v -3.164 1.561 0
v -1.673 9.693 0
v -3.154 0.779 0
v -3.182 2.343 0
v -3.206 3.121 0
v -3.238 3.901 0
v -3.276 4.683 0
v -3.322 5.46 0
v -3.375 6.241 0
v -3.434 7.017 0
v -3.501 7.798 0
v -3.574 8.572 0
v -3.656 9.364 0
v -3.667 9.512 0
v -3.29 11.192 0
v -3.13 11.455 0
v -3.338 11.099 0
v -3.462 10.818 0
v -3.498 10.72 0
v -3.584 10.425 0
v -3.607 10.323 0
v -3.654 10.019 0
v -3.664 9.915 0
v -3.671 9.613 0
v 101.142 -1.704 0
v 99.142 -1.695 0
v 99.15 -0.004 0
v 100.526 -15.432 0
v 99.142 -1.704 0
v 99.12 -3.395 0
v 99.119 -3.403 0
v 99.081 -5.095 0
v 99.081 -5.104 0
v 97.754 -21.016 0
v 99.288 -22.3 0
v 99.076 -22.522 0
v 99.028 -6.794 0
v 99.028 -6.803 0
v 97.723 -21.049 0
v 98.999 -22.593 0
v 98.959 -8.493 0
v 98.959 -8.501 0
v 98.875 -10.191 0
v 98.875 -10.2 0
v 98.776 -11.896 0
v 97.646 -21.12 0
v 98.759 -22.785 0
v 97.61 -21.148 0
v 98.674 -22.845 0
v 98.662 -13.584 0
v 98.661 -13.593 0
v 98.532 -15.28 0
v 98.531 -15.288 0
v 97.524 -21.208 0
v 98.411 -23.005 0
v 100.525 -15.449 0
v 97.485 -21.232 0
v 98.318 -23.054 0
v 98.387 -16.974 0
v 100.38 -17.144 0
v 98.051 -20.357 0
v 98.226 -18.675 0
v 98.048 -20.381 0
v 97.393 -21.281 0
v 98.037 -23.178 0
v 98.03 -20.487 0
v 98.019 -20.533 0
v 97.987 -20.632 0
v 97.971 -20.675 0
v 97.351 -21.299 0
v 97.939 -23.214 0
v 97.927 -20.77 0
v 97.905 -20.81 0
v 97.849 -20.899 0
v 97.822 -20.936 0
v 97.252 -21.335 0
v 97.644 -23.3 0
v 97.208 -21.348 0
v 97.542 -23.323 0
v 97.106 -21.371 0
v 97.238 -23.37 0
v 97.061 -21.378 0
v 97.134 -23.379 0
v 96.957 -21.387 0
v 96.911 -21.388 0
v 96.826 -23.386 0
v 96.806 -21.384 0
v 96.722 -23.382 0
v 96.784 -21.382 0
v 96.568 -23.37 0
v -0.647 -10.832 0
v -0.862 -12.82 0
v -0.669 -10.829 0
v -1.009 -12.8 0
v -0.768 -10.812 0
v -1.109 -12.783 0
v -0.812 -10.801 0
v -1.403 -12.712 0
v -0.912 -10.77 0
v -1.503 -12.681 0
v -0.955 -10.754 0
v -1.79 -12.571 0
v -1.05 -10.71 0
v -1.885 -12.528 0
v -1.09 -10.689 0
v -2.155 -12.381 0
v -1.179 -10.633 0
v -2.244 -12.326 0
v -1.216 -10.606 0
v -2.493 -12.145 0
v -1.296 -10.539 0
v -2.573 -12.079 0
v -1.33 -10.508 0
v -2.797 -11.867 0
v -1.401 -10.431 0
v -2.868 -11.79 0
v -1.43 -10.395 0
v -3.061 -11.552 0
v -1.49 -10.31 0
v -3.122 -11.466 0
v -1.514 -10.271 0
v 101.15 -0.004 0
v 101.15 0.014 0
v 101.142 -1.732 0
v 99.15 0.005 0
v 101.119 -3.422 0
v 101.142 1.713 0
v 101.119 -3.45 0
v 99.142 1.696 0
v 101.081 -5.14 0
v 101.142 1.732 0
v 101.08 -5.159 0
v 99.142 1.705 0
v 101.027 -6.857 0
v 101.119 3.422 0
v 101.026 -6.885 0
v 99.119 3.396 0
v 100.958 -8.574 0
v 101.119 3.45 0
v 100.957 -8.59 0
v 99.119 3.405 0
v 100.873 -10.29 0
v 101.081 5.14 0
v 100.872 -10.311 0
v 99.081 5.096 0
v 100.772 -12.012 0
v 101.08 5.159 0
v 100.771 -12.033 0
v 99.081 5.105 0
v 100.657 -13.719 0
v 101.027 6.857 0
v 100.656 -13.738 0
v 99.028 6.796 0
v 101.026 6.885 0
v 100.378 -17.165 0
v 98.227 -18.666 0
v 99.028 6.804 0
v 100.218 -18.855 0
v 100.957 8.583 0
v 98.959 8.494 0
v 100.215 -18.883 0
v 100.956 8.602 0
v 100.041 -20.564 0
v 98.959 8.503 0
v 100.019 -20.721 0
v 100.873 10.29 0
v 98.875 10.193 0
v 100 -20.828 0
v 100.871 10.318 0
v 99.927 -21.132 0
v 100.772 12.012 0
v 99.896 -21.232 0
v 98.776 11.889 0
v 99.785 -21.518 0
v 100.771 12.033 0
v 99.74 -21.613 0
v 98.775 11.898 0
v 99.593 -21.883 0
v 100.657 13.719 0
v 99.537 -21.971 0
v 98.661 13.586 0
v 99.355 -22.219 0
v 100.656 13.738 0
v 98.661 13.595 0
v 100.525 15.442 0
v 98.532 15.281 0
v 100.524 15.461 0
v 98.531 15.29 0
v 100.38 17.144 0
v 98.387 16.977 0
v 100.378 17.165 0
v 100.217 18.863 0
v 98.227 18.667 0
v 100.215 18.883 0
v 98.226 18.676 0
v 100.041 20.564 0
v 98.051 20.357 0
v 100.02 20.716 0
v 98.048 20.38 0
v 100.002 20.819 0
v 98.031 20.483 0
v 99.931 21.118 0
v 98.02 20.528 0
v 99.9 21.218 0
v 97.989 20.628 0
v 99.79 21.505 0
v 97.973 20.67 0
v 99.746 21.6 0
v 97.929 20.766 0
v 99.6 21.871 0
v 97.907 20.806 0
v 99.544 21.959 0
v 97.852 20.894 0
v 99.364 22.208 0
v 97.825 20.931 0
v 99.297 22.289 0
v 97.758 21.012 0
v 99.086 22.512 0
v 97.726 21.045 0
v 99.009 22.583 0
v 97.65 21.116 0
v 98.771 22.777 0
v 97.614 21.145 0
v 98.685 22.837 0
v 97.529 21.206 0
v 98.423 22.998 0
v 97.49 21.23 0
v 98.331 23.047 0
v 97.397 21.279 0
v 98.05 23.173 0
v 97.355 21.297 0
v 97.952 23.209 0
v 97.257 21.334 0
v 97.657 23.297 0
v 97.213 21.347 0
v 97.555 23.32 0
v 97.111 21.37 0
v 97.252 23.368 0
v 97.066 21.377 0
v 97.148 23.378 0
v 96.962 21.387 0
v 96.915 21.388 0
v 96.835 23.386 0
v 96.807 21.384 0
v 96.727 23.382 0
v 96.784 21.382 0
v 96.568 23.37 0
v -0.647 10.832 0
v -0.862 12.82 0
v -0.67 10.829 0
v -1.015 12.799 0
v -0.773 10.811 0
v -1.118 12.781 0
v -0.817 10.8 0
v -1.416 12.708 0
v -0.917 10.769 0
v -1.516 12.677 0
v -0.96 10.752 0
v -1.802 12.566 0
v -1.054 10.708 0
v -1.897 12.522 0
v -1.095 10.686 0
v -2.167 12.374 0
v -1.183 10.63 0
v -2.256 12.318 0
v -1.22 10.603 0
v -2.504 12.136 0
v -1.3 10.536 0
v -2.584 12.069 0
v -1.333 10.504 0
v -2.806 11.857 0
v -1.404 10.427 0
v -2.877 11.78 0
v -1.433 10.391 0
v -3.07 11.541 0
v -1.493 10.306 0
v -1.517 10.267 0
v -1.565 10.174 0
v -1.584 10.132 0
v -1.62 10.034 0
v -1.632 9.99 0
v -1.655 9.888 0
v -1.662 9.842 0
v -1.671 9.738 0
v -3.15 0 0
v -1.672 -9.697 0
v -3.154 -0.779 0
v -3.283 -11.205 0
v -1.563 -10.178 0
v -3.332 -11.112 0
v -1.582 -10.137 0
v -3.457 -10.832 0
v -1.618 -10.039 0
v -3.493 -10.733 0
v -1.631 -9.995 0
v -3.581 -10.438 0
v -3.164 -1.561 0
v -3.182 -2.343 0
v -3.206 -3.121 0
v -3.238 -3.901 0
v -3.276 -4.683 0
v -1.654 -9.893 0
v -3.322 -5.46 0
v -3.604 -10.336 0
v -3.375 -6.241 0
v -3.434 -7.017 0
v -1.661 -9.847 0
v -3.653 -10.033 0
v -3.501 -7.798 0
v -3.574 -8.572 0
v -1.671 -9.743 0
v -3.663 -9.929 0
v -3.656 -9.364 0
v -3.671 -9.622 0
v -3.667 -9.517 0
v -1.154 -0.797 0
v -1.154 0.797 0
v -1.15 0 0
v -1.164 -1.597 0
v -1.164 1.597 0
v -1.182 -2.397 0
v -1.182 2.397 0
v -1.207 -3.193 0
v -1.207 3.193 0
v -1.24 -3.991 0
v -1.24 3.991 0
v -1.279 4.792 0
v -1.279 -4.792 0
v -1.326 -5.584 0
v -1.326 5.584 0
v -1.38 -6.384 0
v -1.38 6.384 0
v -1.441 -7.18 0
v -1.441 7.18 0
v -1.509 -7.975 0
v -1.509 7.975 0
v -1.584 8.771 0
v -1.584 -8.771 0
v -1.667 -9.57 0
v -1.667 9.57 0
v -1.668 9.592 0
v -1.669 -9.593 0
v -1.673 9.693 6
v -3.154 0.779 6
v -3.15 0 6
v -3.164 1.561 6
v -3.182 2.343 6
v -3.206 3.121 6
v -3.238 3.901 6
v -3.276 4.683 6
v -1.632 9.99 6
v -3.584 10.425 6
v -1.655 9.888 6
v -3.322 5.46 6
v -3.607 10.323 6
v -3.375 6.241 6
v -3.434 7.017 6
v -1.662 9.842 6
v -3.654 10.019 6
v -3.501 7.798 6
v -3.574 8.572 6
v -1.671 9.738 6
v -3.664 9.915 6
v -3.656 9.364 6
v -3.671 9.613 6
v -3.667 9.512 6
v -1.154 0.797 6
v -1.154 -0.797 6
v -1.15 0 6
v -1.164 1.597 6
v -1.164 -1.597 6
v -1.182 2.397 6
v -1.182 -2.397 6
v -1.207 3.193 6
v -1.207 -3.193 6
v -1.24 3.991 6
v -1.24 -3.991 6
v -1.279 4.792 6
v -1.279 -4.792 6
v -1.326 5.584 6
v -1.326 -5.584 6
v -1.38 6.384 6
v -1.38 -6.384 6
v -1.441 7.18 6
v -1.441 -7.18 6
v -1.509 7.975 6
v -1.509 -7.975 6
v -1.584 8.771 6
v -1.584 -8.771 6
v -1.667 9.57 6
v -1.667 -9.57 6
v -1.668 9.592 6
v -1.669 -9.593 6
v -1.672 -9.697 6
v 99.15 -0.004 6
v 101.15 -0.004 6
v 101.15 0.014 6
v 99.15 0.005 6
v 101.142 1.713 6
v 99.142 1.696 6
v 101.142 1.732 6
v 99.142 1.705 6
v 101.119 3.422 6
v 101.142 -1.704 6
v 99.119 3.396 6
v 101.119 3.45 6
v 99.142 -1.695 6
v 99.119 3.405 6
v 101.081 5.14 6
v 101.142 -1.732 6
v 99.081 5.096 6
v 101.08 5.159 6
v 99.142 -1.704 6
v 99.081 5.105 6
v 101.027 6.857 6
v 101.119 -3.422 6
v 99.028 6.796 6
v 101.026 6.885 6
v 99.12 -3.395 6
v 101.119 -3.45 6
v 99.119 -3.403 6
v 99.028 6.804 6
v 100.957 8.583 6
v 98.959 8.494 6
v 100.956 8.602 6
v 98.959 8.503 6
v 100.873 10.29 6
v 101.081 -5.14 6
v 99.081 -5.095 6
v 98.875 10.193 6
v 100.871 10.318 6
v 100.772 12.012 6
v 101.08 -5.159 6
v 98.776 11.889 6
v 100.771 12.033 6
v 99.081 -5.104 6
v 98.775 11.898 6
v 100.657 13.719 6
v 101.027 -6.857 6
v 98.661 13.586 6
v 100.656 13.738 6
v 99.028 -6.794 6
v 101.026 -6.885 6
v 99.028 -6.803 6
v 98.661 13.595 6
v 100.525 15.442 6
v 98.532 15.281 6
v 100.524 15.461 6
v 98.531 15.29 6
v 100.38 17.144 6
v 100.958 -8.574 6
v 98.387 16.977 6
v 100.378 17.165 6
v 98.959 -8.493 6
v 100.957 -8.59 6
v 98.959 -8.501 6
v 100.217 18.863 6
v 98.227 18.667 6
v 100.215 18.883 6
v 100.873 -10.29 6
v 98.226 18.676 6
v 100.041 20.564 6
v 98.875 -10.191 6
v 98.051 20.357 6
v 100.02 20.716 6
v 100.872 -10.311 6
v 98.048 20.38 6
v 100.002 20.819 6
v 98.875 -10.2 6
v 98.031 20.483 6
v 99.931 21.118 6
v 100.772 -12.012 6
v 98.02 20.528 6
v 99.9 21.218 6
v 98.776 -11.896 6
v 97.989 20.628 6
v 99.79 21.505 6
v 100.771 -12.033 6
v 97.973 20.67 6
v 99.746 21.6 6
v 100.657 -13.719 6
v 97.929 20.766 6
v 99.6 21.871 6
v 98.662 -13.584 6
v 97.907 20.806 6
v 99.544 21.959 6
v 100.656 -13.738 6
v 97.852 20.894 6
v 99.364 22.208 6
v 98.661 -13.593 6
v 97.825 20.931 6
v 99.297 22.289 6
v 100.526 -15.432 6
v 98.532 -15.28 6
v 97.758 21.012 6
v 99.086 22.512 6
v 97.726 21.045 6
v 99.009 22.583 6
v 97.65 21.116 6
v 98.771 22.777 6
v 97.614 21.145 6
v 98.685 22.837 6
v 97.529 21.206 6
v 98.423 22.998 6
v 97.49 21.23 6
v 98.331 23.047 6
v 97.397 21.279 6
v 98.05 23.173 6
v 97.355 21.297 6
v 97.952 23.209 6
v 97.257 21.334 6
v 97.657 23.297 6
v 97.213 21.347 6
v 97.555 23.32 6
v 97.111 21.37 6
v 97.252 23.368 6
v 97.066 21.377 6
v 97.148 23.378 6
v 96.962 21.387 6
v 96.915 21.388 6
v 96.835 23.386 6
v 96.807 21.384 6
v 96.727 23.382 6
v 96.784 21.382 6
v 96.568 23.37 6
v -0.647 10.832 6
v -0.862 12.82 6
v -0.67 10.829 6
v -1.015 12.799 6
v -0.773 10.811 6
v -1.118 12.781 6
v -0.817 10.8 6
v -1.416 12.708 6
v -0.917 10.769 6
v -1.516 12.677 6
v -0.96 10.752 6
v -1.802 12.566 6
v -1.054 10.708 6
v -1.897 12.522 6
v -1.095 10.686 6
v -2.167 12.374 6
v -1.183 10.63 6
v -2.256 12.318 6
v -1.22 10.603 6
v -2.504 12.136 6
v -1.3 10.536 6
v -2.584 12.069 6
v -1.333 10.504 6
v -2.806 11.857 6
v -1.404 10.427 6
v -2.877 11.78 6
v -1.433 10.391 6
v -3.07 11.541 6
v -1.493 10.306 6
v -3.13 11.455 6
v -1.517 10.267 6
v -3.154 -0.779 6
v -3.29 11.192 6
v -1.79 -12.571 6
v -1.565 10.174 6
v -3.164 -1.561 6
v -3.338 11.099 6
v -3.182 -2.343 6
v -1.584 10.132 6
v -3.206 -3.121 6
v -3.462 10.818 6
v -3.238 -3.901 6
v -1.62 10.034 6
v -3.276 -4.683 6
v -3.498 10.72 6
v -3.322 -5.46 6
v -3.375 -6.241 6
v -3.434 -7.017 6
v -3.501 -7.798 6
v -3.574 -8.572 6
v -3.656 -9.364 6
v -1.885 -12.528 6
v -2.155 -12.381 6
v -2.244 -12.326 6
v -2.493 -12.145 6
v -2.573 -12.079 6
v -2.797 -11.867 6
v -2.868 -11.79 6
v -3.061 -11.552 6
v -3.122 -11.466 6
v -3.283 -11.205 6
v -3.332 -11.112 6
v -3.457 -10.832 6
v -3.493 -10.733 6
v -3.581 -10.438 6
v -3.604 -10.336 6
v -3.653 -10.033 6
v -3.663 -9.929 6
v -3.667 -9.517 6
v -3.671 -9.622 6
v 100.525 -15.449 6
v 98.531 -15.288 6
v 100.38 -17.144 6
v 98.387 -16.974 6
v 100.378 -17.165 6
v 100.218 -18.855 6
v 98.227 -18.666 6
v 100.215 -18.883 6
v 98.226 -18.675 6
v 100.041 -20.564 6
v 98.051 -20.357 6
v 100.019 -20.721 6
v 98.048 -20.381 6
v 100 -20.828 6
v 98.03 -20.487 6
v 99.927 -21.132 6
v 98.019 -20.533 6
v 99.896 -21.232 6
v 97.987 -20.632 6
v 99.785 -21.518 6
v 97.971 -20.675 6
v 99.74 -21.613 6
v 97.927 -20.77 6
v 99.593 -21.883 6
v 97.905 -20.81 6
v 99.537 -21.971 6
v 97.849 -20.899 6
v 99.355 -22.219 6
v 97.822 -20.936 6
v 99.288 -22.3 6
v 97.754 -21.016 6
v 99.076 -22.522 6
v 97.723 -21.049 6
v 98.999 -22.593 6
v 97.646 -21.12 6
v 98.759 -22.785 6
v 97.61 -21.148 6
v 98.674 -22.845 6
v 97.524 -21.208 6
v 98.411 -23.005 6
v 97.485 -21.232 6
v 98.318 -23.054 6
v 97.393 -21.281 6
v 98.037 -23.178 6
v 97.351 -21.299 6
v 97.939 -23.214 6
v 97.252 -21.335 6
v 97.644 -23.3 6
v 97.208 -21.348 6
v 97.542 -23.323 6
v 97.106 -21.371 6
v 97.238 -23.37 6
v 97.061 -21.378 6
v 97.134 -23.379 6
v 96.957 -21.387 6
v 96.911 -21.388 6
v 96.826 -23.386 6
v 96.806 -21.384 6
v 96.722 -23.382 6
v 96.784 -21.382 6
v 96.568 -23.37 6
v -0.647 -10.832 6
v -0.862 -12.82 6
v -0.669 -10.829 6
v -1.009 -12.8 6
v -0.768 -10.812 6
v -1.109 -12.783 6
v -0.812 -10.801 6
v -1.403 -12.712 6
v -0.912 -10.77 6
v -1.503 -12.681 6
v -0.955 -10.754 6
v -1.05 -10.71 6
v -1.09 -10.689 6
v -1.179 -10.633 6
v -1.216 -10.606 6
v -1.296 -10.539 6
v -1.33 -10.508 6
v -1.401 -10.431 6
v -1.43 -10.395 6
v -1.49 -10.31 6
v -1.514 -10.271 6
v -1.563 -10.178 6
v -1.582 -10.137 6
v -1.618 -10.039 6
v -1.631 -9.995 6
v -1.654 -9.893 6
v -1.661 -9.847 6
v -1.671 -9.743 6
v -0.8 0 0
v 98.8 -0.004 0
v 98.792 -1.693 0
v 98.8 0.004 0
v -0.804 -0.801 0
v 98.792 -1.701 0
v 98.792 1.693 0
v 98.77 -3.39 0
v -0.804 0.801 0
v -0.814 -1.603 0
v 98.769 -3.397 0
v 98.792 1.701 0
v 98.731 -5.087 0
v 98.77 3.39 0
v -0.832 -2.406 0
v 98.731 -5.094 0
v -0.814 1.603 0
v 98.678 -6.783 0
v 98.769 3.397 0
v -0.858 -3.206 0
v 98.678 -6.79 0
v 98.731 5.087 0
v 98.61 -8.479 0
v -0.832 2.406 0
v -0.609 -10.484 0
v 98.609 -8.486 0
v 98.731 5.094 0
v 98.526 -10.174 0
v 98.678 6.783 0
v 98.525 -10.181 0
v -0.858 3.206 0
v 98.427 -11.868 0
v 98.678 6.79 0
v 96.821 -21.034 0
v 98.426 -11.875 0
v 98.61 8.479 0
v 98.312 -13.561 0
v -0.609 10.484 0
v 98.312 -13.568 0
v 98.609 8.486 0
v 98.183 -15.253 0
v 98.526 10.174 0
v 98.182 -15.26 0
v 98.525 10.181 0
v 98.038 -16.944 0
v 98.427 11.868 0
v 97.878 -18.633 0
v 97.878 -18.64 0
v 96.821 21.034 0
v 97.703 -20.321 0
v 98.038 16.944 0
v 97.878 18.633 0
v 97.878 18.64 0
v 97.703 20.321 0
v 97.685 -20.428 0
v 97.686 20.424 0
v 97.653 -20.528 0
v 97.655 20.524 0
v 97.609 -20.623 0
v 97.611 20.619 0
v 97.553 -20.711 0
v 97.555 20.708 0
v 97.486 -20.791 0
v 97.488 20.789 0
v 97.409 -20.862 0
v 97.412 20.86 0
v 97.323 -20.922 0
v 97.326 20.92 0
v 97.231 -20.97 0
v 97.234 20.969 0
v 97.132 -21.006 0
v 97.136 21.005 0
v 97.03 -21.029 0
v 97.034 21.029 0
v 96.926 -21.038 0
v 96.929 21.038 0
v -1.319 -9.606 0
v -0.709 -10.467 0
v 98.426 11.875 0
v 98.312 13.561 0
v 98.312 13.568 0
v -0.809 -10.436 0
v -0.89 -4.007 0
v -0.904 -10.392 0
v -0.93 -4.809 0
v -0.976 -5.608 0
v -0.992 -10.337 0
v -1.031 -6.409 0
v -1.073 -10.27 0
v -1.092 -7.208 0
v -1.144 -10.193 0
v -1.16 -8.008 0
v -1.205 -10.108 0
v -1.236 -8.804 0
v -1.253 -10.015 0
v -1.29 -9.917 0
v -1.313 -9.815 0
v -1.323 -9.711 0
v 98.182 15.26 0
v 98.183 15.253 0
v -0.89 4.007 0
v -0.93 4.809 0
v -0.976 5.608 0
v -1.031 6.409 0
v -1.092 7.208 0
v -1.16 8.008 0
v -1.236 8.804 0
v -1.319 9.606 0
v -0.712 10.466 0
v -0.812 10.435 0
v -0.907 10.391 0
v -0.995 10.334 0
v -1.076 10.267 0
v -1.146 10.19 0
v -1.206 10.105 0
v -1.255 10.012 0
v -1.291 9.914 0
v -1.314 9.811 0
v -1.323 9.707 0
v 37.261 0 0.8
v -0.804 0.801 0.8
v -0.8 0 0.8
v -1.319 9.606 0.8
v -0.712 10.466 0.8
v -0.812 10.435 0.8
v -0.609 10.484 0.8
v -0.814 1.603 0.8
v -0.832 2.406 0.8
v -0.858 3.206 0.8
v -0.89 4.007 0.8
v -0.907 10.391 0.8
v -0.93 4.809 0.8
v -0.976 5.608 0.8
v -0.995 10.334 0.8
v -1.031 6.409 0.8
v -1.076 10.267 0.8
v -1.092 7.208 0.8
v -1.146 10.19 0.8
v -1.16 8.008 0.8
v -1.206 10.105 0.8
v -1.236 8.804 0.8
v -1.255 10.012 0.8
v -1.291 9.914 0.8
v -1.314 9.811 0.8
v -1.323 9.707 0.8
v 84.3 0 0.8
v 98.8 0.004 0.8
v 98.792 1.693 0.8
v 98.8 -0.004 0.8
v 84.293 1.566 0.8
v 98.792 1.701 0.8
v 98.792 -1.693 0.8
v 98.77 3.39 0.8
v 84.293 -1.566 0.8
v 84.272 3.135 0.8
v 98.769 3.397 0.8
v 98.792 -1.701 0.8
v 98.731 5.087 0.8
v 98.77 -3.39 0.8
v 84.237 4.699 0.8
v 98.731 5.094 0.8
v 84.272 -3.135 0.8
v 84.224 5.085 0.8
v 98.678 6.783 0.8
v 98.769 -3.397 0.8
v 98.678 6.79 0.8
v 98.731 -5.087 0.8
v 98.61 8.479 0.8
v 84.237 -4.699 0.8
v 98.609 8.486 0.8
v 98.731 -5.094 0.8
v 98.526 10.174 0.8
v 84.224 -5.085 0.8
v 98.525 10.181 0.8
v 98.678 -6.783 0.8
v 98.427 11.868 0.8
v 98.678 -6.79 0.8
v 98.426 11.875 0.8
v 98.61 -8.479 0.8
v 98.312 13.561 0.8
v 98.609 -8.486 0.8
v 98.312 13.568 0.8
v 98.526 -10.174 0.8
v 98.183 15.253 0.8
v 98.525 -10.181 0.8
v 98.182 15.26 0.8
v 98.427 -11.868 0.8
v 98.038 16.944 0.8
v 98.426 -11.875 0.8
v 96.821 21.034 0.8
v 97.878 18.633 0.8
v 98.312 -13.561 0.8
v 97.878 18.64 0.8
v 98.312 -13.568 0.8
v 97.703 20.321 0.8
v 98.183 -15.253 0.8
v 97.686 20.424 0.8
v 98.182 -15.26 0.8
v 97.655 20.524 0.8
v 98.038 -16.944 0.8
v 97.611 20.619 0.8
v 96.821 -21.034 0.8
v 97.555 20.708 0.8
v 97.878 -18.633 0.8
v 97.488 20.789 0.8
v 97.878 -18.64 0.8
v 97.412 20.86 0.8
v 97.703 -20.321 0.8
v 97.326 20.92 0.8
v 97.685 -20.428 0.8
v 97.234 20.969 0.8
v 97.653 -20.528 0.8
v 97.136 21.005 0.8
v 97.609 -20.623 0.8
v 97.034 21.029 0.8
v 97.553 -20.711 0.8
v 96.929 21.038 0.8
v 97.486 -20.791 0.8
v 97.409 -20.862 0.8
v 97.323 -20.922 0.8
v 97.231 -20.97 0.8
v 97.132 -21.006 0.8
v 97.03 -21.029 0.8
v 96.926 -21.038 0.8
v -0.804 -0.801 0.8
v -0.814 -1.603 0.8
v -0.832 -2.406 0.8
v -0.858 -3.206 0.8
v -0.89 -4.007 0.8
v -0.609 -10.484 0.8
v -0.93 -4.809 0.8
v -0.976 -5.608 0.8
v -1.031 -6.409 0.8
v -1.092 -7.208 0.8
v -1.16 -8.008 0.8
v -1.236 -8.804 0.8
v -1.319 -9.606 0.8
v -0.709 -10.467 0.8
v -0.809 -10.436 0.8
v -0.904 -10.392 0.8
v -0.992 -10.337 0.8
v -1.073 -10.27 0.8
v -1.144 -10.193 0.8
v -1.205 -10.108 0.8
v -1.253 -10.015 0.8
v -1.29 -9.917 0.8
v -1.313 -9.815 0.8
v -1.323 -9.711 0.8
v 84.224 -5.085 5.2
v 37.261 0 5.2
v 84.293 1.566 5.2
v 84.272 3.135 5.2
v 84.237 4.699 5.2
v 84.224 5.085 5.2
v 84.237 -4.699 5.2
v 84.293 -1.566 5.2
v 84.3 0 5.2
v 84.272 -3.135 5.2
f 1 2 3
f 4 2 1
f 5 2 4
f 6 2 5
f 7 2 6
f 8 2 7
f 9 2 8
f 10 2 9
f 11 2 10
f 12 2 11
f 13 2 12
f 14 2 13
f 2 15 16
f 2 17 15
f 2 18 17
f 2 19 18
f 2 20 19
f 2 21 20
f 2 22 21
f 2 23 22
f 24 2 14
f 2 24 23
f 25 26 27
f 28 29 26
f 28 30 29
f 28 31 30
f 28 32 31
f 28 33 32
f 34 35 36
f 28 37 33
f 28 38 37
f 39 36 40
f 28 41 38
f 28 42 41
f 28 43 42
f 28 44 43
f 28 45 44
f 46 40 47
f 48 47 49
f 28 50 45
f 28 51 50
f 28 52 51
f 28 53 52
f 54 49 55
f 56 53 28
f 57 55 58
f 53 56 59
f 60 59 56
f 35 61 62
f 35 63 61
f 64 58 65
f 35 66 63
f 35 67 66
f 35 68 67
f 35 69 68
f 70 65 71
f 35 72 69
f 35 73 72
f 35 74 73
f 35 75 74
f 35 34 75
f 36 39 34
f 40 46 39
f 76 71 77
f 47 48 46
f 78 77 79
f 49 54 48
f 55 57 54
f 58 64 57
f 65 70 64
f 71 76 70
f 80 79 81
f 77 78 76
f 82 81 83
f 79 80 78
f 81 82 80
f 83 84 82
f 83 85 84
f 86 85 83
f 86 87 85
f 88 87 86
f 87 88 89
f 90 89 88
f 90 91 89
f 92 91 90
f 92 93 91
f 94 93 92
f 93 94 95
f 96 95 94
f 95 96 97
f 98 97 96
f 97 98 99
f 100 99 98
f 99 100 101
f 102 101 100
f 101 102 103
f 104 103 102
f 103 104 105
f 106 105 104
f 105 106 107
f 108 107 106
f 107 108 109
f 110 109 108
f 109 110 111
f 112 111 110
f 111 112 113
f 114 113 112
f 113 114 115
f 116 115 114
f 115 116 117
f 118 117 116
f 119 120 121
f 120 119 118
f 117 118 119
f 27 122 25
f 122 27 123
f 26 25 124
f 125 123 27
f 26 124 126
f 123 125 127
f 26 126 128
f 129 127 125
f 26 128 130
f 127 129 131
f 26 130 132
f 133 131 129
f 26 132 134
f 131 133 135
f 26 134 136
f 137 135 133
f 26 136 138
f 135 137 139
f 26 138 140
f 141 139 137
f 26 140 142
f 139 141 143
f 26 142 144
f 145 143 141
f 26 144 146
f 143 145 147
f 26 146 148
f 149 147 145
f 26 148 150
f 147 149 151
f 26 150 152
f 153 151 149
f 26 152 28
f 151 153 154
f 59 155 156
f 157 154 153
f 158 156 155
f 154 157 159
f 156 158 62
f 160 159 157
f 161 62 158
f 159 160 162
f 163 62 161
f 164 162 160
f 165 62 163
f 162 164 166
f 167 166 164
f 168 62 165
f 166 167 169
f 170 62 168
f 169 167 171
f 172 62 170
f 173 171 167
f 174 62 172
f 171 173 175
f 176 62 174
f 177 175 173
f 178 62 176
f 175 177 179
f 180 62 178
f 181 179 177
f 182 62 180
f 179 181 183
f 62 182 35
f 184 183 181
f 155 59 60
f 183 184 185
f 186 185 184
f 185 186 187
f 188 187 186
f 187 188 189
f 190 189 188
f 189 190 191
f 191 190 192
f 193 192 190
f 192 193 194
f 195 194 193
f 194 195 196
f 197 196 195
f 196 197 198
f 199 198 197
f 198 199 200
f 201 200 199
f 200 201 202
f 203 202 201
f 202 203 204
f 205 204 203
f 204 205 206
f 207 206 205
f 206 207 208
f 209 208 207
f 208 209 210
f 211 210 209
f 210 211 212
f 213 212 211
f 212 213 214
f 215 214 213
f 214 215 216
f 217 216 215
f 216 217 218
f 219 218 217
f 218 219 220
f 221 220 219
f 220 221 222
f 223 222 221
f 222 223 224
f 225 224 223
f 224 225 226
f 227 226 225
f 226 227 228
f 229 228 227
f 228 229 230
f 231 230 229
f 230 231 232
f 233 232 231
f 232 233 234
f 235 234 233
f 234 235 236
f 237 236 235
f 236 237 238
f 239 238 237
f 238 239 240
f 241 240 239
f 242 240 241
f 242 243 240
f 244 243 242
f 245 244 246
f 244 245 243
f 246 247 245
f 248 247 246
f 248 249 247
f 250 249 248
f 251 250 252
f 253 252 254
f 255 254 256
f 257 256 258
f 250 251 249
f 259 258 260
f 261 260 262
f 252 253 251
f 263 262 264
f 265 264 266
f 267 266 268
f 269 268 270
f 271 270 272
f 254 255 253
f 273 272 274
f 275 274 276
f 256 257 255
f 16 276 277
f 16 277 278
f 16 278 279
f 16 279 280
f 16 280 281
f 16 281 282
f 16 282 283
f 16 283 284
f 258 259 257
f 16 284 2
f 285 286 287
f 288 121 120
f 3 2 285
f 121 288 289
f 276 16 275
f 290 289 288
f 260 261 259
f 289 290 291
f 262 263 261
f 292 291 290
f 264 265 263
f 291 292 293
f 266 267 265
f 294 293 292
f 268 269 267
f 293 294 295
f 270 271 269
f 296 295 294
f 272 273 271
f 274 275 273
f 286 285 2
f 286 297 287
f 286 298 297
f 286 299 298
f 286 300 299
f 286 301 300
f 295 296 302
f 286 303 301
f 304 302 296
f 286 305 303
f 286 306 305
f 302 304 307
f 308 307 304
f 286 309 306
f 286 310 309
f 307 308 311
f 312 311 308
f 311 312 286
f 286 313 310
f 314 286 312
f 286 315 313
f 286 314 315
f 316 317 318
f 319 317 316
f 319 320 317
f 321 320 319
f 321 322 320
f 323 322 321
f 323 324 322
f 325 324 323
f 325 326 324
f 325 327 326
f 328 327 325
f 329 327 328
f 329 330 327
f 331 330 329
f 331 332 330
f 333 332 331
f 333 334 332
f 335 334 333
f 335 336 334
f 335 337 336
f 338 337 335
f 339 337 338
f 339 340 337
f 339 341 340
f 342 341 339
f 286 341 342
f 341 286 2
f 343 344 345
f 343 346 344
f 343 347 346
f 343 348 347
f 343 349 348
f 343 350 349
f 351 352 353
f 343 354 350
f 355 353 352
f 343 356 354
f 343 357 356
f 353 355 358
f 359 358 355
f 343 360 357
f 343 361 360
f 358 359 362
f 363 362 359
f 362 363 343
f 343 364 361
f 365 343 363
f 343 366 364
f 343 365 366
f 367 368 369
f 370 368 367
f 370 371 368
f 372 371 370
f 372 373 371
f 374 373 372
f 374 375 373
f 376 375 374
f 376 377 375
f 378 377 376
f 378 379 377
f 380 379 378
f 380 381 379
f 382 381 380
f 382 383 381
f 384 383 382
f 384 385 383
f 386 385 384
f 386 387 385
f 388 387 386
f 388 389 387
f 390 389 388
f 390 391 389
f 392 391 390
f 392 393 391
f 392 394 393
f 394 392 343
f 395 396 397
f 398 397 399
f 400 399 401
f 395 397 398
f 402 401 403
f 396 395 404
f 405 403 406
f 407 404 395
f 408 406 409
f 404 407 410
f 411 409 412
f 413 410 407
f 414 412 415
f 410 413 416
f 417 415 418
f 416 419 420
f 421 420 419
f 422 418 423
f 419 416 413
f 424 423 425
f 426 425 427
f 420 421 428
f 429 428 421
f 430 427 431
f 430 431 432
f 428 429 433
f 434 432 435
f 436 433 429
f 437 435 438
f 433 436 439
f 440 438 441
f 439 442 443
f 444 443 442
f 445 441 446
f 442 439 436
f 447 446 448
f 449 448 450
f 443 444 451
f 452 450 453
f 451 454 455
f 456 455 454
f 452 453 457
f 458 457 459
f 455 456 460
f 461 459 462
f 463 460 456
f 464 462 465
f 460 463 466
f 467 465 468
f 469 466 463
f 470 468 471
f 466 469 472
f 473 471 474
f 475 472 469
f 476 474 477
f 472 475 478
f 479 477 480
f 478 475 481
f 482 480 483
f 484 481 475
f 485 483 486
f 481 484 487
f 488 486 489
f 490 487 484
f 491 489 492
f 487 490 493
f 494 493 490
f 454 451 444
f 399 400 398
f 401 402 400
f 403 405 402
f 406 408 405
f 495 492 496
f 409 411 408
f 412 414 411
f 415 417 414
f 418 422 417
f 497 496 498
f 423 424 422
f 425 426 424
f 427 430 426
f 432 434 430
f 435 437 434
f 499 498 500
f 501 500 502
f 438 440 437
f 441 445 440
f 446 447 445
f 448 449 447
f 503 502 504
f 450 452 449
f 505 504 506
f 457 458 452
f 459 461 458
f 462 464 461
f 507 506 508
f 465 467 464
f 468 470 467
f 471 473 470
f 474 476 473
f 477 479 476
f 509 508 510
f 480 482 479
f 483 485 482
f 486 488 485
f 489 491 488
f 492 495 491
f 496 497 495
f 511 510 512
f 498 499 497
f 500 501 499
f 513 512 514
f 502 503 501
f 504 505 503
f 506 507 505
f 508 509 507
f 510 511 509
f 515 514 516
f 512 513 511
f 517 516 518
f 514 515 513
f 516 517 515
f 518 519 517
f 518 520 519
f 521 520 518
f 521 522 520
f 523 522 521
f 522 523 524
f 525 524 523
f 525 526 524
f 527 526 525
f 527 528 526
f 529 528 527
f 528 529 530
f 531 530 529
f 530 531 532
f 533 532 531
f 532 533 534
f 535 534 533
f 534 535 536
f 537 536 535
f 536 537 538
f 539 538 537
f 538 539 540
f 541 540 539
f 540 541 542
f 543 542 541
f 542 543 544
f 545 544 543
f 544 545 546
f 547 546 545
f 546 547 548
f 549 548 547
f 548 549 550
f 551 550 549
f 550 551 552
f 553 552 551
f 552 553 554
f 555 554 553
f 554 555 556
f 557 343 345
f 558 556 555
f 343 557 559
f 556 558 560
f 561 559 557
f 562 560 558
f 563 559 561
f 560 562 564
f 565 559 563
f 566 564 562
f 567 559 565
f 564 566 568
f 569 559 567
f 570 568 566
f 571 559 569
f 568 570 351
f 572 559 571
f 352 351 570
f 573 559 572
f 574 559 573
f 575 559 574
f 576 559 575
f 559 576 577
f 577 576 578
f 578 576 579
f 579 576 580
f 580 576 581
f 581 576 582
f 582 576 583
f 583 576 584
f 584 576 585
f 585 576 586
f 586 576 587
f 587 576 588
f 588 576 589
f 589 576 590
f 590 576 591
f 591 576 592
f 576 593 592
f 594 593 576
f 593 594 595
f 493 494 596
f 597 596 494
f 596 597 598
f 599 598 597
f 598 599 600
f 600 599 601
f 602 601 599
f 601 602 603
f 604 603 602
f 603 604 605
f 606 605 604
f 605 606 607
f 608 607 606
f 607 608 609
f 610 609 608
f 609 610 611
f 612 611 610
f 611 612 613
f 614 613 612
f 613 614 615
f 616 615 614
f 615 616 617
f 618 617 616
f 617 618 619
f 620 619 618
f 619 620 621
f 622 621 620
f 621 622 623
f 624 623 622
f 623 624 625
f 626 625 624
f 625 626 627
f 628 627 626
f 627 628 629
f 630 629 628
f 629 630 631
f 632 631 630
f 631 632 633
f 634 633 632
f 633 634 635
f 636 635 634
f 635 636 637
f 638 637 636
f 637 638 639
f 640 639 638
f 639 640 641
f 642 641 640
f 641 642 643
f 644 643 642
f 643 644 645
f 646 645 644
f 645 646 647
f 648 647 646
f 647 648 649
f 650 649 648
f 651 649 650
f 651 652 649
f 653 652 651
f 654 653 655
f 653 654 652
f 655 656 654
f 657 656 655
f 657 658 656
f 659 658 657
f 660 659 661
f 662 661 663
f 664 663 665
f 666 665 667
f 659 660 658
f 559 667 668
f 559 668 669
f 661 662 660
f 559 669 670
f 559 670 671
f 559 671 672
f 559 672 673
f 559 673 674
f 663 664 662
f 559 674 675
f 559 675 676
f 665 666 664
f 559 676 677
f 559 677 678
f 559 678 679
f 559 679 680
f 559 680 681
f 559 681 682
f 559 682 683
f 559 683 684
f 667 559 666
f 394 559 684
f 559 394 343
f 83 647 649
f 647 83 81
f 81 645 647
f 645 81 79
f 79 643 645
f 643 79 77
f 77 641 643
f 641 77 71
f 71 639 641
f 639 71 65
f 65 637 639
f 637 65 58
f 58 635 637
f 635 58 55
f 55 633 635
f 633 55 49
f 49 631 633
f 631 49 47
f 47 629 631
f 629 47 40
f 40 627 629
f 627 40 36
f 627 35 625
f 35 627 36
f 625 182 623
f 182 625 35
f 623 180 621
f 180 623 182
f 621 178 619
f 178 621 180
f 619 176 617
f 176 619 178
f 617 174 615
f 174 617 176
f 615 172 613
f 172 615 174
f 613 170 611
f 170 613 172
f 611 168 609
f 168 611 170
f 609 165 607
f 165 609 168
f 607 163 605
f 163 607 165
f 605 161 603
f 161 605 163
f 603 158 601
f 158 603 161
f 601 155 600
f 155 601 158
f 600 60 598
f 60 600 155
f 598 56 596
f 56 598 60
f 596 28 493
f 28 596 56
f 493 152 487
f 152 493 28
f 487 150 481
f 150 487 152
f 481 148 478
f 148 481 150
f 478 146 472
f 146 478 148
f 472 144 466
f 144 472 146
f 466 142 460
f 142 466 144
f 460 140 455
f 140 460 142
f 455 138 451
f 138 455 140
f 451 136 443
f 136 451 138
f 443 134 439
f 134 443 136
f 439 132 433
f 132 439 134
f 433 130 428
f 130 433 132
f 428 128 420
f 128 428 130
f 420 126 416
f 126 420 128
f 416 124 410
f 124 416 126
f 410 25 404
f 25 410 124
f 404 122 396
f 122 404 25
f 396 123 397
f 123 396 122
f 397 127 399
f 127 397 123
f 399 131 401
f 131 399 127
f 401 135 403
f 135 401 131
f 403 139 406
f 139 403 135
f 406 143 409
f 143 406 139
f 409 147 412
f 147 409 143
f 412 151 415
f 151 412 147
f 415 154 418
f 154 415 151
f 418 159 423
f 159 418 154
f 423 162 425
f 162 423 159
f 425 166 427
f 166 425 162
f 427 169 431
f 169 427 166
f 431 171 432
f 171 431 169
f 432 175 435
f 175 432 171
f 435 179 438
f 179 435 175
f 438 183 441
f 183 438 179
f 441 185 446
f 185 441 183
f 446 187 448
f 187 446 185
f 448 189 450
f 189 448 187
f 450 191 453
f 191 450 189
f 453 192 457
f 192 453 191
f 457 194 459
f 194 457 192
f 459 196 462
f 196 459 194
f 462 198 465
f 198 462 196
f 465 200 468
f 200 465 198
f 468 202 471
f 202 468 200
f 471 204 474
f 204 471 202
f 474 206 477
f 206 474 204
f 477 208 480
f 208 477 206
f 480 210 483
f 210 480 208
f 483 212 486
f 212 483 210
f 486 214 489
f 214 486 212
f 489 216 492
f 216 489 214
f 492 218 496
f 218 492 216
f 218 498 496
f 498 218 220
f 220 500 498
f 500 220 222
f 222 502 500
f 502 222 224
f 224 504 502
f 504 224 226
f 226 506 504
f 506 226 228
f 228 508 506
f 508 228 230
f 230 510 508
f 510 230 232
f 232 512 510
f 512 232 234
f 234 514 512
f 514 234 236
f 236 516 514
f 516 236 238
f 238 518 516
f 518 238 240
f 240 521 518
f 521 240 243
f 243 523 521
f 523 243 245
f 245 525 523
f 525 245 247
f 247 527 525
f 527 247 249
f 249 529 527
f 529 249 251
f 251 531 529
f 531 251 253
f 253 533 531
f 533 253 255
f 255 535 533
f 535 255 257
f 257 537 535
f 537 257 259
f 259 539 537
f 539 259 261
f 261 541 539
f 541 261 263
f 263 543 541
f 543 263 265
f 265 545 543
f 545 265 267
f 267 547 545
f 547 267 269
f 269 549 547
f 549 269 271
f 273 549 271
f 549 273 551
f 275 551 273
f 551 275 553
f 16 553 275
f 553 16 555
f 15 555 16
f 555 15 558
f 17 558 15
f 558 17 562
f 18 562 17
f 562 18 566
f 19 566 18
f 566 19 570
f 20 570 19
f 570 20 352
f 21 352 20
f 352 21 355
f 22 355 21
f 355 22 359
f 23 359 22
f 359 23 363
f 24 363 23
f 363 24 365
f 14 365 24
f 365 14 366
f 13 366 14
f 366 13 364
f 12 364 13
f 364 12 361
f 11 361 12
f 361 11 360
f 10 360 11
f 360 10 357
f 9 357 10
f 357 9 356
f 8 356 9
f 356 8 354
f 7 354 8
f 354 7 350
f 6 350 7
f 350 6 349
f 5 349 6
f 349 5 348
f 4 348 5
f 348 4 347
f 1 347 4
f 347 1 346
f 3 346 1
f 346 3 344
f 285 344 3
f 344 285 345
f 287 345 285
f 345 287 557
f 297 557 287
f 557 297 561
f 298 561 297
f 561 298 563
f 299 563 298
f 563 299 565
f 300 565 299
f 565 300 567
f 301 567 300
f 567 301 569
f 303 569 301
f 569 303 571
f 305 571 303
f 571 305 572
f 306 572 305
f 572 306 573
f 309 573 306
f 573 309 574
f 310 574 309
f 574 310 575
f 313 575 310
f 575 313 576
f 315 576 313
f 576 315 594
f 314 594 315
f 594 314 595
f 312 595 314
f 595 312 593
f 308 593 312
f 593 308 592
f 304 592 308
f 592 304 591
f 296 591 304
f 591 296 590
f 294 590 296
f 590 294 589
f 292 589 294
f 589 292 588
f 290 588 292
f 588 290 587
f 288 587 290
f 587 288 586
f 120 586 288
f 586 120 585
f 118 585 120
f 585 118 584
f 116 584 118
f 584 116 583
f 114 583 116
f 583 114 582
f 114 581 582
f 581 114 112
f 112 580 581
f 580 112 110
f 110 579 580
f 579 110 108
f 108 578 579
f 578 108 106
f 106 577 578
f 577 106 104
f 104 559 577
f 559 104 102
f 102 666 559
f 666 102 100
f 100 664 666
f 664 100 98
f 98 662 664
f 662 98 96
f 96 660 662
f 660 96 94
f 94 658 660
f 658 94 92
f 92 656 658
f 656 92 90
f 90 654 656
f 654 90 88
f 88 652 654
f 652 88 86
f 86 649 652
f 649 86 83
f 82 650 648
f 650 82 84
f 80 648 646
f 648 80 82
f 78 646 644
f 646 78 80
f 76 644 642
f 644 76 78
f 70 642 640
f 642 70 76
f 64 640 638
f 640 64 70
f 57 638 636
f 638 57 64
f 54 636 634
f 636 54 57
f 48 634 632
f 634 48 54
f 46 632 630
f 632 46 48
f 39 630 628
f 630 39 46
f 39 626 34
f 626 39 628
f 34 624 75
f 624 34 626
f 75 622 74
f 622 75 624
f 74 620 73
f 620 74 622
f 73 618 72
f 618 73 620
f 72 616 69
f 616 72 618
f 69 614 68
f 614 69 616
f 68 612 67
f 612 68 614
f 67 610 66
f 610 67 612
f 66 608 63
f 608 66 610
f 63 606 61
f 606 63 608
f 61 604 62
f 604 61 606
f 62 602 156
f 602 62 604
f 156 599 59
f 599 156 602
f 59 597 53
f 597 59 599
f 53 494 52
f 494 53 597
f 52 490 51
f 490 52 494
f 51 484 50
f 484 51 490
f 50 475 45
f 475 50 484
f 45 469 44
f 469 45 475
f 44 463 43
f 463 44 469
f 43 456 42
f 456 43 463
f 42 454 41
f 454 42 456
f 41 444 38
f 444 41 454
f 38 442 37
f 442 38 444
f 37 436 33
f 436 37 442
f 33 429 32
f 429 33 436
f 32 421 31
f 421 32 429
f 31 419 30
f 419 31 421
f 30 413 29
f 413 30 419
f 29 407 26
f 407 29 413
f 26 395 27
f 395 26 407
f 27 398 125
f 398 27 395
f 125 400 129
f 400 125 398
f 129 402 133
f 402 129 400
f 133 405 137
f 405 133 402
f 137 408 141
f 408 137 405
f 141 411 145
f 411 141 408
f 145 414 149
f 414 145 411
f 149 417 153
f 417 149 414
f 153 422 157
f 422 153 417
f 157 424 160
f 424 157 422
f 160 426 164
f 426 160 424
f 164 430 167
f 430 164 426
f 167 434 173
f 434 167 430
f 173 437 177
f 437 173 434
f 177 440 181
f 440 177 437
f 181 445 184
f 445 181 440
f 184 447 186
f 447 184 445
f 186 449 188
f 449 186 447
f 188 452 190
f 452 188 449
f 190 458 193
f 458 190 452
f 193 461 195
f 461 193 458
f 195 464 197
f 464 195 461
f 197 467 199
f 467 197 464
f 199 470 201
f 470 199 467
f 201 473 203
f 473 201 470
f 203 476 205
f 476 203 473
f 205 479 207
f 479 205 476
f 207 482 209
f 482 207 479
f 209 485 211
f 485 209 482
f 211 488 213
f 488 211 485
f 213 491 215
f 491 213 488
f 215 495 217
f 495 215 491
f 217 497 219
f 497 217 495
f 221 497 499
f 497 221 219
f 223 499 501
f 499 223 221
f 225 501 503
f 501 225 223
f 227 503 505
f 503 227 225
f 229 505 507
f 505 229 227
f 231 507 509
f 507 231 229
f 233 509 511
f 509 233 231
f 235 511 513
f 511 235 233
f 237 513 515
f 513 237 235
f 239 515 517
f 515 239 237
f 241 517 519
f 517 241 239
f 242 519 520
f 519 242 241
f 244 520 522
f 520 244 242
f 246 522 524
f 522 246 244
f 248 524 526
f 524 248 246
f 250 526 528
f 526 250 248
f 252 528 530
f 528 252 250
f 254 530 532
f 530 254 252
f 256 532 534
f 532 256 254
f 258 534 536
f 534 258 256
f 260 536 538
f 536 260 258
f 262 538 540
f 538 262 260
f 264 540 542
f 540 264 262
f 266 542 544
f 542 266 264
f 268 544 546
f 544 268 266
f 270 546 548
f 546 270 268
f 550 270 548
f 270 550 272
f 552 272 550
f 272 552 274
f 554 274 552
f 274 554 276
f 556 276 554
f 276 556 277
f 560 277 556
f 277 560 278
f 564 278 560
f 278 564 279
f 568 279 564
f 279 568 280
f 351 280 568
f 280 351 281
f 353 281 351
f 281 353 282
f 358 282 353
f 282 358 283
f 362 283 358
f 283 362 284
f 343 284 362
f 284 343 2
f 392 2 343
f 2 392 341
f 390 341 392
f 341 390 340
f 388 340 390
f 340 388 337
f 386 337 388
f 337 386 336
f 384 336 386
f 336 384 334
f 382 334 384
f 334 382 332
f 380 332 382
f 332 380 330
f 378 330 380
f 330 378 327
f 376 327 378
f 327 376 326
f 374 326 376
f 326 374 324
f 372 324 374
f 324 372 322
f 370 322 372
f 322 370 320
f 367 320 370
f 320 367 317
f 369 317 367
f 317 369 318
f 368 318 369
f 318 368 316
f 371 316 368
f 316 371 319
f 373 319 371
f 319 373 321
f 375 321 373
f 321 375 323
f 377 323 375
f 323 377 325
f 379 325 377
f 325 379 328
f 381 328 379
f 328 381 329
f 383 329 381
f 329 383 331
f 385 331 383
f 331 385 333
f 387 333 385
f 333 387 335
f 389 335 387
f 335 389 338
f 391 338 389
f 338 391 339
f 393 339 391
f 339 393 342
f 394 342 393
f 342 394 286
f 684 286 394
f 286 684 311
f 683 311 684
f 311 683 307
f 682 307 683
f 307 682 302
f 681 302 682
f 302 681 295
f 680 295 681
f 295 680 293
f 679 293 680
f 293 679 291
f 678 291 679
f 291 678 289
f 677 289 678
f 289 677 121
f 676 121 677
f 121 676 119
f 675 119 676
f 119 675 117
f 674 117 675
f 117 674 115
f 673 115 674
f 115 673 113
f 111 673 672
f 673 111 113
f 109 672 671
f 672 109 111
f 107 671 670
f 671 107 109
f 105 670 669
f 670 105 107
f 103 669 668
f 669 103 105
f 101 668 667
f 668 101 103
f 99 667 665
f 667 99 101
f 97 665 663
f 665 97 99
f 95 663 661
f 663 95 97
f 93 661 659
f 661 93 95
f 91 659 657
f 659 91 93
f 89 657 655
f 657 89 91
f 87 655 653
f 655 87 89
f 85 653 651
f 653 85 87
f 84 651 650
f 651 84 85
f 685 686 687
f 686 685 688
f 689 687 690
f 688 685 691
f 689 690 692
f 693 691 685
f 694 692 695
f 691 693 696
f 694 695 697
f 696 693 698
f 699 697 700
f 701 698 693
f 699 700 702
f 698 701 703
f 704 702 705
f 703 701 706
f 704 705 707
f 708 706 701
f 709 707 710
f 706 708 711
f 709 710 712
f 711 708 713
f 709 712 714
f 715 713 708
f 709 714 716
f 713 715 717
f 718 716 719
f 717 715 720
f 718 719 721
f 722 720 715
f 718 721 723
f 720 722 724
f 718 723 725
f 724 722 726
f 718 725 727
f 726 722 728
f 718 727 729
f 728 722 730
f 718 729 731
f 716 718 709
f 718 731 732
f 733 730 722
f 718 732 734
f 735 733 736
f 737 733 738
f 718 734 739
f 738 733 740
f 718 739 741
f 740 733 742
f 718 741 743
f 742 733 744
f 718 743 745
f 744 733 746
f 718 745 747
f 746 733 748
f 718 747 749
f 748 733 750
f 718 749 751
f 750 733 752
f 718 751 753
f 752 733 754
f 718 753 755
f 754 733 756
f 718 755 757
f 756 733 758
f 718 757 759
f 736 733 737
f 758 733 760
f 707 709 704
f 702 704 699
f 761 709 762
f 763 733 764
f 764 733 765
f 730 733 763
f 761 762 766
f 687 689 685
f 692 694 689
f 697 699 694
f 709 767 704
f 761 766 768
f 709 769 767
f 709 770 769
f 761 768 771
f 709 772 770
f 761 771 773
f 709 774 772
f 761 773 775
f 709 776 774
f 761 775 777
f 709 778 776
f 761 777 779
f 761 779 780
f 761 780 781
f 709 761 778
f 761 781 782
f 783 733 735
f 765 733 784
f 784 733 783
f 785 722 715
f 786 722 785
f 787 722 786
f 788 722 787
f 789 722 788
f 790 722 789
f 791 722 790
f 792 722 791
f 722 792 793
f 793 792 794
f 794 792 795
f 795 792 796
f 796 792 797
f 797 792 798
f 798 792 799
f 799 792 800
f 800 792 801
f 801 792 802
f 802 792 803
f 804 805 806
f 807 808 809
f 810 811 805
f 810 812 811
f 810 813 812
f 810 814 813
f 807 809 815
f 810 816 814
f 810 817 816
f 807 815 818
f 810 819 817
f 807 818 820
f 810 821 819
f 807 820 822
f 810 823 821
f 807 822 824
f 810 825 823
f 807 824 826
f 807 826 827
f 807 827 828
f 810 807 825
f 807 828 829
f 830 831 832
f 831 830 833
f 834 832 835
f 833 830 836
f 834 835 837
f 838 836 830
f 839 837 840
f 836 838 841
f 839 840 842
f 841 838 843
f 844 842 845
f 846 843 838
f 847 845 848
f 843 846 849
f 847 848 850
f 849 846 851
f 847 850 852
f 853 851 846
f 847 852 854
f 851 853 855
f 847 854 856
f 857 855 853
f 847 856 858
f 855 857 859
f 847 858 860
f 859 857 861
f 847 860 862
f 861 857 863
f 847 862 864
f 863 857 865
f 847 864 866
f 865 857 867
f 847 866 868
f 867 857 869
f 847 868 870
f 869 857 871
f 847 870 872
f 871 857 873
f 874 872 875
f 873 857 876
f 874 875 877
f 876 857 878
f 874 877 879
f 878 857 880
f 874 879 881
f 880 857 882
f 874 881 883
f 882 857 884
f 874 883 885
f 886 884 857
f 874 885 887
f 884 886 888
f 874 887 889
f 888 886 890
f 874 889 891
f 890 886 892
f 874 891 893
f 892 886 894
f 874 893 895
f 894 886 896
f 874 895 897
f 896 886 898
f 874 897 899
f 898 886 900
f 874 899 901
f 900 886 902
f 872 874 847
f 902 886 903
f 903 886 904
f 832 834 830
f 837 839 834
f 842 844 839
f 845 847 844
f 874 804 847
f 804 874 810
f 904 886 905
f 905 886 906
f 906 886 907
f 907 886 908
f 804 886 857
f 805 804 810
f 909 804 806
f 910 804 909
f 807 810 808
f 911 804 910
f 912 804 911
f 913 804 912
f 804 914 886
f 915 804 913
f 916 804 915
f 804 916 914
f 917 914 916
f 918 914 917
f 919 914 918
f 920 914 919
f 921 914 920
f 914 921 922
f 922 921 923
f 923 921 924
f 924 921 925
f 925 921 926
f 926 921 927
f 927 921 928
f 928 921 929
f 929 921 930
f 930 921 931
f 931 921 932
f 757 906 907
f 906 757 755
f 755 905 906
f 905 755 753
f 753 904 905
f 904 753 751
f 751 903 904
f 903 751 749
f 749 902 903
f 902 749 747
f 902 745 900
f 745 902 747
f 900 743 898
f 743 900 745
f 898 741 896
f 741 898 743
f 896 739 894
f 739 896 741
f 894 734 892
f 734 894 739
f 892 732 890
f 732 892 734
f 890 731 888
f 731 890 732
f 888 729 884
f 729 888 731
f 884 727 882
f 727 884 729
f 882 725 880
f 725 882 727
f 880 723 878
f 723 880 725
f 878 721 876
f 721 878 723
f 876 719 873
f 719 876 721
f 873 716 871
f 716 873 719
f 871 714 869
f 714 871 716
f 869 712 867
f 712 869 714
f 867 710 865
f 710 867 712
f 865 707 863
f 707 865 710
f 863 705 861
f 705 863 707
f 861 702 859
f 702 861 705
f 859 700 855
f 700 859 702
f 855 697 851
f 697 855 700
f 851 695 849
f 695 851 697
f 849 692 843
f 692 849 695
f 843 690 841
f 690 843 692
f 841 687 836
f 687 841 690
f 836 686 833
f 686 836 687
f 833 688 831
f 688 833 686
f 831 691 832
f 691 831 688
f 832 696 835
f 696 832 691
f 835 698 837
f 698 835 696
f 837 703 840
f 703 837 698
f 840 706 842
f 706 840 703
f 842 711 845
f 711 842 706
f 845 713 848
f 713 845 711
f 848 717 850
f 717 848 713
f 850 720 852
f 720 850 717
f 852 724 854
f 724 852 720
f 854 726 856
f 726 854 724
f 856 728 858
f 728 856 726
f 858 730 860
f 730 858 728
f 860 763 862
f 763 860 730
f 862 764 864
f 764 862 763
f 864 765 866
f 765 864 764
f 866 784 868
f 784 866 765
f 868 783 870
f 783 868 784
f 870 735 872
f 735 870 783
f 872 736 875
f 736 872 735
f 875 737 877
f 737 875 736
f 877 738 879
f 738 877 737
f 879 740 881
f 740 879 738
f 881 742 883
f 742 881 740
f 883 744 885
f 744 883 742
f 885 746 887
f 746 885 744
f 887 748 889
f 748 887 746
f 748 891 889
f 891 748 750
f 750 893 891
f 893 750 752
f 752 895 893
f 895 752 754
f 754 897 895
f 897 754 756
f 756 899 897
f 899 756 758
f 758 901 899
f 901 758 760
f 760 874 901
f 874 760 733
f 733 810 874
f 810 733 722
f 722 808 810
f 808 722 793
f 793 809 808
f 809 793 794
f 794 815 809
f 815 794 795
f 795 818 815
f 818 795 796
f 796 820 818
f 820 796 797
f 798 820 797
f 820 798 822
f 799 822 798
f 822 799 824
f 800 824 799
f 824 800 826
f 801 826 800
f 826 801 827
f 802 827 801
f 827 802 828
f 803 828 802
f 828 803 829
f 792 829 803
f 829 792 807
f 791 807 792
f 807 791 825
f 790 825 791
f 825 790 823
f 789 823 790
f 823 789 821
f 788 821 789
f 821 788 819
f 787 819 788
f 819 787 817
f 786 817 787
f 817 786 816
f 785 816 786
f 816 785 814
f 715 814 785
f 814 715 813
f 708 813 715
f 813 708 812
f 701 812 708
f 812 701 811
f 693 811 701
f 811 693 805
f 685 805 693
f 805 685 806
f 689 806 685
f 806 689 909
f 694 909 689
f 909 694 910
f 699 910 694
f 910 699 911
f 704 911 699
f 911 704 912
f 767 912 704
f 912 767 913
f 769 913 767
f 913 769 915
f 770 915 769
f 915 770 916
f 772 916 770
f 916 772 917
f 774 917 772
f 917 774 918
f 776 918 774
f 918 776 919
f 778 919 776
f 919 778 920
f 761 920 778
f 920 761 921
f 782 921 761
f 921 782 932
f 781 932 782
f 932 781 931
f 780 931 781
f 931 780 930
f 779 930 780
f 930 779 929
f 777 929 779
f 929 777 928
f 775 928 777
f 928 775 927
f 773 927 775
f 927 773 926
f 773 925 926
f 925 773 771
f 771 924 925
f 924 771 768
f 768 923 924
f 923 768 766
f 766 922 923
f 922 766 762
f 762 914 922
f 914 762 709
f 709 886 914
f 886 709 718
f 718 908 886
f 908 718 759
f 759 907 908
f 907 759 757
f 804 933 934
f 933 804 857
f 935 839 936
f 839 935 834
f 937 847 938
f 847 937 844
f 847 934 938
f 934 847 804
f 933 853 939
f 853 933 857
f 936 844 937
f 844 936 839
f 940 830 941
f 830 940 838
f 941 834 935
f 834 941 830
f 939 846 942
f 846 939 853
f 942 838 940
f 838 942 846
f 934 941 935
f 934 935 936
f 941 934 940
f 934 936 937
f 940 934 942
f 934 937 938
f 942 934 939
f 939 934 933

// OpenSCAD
// Gen-DT — fit coupon (bay part): O20/O5 THROUGH pockets at carrier thickness (test on a steel offcut), 608 seat,
// D-flat bore, gap shim, and one bobbin-bay slice (bobbin footprint + bay_clear) to test former fit.
include <parameters.scad>;
$fn = 48;
// D-flat keyed bore: flat faces +X (angle 0 = magnet pocket 0 = index notch)
module dflat_bore(h) {
    intersection() {
        cylinder(d=shaft_bore, h=h);
        translate([-shaft_bore, -shaft_bore, 0]) cube([shaft_bore + dflat_x, 2*shaft_bore, h]);
    }
}
module sector_2d(r_in, r_out, ang) {
    polygon([
        for (a = [-ang/2 : ang/24 : ang/2]) [r_in*cos(a), r_in*sin(a)],
        for (a = [ang/2 : -ang/24 : -ang/2]) [r_out*cos(a), r_out*sin(a)]
    ]);
}
module footprint_2d() { offset(r=wall) sector_2d(coil_id_r, coil_od_r, span_deg); }
module hub_2d()       { offset(delta=-coil_core_inset) sector_2d(coil_id_r, coil_od_r, span_deg); }

// bay slice at FULL stator thickness with one bobbin BASE printed IN PLACE inside it (bay_clear gap): this is the
// print-in-place test for the one-plate stator. After printing, the base must pop out with finger pressure; if it is fused,
// print coil_former.stl separately (print-packs/parts/) instead of using the in-place bases.
translate([-coil_id_r, 0, 0]) {
    difference() {
        linear_extrude(stator_thick) offset(r=bay_clear + 2) footprint_2d();
        translate([0, 0, -0.1]) linear_extrude(stator_thick + 0.2) offset(r=bay_clear) footprint_2d();
    }
    union() {
        linear_extrude(flange_t) footprint_2d();
        translate([0, 0, flange_t - 0.01]) linear_extrude(former_web + 0.01) hub_2d();
    }
}
